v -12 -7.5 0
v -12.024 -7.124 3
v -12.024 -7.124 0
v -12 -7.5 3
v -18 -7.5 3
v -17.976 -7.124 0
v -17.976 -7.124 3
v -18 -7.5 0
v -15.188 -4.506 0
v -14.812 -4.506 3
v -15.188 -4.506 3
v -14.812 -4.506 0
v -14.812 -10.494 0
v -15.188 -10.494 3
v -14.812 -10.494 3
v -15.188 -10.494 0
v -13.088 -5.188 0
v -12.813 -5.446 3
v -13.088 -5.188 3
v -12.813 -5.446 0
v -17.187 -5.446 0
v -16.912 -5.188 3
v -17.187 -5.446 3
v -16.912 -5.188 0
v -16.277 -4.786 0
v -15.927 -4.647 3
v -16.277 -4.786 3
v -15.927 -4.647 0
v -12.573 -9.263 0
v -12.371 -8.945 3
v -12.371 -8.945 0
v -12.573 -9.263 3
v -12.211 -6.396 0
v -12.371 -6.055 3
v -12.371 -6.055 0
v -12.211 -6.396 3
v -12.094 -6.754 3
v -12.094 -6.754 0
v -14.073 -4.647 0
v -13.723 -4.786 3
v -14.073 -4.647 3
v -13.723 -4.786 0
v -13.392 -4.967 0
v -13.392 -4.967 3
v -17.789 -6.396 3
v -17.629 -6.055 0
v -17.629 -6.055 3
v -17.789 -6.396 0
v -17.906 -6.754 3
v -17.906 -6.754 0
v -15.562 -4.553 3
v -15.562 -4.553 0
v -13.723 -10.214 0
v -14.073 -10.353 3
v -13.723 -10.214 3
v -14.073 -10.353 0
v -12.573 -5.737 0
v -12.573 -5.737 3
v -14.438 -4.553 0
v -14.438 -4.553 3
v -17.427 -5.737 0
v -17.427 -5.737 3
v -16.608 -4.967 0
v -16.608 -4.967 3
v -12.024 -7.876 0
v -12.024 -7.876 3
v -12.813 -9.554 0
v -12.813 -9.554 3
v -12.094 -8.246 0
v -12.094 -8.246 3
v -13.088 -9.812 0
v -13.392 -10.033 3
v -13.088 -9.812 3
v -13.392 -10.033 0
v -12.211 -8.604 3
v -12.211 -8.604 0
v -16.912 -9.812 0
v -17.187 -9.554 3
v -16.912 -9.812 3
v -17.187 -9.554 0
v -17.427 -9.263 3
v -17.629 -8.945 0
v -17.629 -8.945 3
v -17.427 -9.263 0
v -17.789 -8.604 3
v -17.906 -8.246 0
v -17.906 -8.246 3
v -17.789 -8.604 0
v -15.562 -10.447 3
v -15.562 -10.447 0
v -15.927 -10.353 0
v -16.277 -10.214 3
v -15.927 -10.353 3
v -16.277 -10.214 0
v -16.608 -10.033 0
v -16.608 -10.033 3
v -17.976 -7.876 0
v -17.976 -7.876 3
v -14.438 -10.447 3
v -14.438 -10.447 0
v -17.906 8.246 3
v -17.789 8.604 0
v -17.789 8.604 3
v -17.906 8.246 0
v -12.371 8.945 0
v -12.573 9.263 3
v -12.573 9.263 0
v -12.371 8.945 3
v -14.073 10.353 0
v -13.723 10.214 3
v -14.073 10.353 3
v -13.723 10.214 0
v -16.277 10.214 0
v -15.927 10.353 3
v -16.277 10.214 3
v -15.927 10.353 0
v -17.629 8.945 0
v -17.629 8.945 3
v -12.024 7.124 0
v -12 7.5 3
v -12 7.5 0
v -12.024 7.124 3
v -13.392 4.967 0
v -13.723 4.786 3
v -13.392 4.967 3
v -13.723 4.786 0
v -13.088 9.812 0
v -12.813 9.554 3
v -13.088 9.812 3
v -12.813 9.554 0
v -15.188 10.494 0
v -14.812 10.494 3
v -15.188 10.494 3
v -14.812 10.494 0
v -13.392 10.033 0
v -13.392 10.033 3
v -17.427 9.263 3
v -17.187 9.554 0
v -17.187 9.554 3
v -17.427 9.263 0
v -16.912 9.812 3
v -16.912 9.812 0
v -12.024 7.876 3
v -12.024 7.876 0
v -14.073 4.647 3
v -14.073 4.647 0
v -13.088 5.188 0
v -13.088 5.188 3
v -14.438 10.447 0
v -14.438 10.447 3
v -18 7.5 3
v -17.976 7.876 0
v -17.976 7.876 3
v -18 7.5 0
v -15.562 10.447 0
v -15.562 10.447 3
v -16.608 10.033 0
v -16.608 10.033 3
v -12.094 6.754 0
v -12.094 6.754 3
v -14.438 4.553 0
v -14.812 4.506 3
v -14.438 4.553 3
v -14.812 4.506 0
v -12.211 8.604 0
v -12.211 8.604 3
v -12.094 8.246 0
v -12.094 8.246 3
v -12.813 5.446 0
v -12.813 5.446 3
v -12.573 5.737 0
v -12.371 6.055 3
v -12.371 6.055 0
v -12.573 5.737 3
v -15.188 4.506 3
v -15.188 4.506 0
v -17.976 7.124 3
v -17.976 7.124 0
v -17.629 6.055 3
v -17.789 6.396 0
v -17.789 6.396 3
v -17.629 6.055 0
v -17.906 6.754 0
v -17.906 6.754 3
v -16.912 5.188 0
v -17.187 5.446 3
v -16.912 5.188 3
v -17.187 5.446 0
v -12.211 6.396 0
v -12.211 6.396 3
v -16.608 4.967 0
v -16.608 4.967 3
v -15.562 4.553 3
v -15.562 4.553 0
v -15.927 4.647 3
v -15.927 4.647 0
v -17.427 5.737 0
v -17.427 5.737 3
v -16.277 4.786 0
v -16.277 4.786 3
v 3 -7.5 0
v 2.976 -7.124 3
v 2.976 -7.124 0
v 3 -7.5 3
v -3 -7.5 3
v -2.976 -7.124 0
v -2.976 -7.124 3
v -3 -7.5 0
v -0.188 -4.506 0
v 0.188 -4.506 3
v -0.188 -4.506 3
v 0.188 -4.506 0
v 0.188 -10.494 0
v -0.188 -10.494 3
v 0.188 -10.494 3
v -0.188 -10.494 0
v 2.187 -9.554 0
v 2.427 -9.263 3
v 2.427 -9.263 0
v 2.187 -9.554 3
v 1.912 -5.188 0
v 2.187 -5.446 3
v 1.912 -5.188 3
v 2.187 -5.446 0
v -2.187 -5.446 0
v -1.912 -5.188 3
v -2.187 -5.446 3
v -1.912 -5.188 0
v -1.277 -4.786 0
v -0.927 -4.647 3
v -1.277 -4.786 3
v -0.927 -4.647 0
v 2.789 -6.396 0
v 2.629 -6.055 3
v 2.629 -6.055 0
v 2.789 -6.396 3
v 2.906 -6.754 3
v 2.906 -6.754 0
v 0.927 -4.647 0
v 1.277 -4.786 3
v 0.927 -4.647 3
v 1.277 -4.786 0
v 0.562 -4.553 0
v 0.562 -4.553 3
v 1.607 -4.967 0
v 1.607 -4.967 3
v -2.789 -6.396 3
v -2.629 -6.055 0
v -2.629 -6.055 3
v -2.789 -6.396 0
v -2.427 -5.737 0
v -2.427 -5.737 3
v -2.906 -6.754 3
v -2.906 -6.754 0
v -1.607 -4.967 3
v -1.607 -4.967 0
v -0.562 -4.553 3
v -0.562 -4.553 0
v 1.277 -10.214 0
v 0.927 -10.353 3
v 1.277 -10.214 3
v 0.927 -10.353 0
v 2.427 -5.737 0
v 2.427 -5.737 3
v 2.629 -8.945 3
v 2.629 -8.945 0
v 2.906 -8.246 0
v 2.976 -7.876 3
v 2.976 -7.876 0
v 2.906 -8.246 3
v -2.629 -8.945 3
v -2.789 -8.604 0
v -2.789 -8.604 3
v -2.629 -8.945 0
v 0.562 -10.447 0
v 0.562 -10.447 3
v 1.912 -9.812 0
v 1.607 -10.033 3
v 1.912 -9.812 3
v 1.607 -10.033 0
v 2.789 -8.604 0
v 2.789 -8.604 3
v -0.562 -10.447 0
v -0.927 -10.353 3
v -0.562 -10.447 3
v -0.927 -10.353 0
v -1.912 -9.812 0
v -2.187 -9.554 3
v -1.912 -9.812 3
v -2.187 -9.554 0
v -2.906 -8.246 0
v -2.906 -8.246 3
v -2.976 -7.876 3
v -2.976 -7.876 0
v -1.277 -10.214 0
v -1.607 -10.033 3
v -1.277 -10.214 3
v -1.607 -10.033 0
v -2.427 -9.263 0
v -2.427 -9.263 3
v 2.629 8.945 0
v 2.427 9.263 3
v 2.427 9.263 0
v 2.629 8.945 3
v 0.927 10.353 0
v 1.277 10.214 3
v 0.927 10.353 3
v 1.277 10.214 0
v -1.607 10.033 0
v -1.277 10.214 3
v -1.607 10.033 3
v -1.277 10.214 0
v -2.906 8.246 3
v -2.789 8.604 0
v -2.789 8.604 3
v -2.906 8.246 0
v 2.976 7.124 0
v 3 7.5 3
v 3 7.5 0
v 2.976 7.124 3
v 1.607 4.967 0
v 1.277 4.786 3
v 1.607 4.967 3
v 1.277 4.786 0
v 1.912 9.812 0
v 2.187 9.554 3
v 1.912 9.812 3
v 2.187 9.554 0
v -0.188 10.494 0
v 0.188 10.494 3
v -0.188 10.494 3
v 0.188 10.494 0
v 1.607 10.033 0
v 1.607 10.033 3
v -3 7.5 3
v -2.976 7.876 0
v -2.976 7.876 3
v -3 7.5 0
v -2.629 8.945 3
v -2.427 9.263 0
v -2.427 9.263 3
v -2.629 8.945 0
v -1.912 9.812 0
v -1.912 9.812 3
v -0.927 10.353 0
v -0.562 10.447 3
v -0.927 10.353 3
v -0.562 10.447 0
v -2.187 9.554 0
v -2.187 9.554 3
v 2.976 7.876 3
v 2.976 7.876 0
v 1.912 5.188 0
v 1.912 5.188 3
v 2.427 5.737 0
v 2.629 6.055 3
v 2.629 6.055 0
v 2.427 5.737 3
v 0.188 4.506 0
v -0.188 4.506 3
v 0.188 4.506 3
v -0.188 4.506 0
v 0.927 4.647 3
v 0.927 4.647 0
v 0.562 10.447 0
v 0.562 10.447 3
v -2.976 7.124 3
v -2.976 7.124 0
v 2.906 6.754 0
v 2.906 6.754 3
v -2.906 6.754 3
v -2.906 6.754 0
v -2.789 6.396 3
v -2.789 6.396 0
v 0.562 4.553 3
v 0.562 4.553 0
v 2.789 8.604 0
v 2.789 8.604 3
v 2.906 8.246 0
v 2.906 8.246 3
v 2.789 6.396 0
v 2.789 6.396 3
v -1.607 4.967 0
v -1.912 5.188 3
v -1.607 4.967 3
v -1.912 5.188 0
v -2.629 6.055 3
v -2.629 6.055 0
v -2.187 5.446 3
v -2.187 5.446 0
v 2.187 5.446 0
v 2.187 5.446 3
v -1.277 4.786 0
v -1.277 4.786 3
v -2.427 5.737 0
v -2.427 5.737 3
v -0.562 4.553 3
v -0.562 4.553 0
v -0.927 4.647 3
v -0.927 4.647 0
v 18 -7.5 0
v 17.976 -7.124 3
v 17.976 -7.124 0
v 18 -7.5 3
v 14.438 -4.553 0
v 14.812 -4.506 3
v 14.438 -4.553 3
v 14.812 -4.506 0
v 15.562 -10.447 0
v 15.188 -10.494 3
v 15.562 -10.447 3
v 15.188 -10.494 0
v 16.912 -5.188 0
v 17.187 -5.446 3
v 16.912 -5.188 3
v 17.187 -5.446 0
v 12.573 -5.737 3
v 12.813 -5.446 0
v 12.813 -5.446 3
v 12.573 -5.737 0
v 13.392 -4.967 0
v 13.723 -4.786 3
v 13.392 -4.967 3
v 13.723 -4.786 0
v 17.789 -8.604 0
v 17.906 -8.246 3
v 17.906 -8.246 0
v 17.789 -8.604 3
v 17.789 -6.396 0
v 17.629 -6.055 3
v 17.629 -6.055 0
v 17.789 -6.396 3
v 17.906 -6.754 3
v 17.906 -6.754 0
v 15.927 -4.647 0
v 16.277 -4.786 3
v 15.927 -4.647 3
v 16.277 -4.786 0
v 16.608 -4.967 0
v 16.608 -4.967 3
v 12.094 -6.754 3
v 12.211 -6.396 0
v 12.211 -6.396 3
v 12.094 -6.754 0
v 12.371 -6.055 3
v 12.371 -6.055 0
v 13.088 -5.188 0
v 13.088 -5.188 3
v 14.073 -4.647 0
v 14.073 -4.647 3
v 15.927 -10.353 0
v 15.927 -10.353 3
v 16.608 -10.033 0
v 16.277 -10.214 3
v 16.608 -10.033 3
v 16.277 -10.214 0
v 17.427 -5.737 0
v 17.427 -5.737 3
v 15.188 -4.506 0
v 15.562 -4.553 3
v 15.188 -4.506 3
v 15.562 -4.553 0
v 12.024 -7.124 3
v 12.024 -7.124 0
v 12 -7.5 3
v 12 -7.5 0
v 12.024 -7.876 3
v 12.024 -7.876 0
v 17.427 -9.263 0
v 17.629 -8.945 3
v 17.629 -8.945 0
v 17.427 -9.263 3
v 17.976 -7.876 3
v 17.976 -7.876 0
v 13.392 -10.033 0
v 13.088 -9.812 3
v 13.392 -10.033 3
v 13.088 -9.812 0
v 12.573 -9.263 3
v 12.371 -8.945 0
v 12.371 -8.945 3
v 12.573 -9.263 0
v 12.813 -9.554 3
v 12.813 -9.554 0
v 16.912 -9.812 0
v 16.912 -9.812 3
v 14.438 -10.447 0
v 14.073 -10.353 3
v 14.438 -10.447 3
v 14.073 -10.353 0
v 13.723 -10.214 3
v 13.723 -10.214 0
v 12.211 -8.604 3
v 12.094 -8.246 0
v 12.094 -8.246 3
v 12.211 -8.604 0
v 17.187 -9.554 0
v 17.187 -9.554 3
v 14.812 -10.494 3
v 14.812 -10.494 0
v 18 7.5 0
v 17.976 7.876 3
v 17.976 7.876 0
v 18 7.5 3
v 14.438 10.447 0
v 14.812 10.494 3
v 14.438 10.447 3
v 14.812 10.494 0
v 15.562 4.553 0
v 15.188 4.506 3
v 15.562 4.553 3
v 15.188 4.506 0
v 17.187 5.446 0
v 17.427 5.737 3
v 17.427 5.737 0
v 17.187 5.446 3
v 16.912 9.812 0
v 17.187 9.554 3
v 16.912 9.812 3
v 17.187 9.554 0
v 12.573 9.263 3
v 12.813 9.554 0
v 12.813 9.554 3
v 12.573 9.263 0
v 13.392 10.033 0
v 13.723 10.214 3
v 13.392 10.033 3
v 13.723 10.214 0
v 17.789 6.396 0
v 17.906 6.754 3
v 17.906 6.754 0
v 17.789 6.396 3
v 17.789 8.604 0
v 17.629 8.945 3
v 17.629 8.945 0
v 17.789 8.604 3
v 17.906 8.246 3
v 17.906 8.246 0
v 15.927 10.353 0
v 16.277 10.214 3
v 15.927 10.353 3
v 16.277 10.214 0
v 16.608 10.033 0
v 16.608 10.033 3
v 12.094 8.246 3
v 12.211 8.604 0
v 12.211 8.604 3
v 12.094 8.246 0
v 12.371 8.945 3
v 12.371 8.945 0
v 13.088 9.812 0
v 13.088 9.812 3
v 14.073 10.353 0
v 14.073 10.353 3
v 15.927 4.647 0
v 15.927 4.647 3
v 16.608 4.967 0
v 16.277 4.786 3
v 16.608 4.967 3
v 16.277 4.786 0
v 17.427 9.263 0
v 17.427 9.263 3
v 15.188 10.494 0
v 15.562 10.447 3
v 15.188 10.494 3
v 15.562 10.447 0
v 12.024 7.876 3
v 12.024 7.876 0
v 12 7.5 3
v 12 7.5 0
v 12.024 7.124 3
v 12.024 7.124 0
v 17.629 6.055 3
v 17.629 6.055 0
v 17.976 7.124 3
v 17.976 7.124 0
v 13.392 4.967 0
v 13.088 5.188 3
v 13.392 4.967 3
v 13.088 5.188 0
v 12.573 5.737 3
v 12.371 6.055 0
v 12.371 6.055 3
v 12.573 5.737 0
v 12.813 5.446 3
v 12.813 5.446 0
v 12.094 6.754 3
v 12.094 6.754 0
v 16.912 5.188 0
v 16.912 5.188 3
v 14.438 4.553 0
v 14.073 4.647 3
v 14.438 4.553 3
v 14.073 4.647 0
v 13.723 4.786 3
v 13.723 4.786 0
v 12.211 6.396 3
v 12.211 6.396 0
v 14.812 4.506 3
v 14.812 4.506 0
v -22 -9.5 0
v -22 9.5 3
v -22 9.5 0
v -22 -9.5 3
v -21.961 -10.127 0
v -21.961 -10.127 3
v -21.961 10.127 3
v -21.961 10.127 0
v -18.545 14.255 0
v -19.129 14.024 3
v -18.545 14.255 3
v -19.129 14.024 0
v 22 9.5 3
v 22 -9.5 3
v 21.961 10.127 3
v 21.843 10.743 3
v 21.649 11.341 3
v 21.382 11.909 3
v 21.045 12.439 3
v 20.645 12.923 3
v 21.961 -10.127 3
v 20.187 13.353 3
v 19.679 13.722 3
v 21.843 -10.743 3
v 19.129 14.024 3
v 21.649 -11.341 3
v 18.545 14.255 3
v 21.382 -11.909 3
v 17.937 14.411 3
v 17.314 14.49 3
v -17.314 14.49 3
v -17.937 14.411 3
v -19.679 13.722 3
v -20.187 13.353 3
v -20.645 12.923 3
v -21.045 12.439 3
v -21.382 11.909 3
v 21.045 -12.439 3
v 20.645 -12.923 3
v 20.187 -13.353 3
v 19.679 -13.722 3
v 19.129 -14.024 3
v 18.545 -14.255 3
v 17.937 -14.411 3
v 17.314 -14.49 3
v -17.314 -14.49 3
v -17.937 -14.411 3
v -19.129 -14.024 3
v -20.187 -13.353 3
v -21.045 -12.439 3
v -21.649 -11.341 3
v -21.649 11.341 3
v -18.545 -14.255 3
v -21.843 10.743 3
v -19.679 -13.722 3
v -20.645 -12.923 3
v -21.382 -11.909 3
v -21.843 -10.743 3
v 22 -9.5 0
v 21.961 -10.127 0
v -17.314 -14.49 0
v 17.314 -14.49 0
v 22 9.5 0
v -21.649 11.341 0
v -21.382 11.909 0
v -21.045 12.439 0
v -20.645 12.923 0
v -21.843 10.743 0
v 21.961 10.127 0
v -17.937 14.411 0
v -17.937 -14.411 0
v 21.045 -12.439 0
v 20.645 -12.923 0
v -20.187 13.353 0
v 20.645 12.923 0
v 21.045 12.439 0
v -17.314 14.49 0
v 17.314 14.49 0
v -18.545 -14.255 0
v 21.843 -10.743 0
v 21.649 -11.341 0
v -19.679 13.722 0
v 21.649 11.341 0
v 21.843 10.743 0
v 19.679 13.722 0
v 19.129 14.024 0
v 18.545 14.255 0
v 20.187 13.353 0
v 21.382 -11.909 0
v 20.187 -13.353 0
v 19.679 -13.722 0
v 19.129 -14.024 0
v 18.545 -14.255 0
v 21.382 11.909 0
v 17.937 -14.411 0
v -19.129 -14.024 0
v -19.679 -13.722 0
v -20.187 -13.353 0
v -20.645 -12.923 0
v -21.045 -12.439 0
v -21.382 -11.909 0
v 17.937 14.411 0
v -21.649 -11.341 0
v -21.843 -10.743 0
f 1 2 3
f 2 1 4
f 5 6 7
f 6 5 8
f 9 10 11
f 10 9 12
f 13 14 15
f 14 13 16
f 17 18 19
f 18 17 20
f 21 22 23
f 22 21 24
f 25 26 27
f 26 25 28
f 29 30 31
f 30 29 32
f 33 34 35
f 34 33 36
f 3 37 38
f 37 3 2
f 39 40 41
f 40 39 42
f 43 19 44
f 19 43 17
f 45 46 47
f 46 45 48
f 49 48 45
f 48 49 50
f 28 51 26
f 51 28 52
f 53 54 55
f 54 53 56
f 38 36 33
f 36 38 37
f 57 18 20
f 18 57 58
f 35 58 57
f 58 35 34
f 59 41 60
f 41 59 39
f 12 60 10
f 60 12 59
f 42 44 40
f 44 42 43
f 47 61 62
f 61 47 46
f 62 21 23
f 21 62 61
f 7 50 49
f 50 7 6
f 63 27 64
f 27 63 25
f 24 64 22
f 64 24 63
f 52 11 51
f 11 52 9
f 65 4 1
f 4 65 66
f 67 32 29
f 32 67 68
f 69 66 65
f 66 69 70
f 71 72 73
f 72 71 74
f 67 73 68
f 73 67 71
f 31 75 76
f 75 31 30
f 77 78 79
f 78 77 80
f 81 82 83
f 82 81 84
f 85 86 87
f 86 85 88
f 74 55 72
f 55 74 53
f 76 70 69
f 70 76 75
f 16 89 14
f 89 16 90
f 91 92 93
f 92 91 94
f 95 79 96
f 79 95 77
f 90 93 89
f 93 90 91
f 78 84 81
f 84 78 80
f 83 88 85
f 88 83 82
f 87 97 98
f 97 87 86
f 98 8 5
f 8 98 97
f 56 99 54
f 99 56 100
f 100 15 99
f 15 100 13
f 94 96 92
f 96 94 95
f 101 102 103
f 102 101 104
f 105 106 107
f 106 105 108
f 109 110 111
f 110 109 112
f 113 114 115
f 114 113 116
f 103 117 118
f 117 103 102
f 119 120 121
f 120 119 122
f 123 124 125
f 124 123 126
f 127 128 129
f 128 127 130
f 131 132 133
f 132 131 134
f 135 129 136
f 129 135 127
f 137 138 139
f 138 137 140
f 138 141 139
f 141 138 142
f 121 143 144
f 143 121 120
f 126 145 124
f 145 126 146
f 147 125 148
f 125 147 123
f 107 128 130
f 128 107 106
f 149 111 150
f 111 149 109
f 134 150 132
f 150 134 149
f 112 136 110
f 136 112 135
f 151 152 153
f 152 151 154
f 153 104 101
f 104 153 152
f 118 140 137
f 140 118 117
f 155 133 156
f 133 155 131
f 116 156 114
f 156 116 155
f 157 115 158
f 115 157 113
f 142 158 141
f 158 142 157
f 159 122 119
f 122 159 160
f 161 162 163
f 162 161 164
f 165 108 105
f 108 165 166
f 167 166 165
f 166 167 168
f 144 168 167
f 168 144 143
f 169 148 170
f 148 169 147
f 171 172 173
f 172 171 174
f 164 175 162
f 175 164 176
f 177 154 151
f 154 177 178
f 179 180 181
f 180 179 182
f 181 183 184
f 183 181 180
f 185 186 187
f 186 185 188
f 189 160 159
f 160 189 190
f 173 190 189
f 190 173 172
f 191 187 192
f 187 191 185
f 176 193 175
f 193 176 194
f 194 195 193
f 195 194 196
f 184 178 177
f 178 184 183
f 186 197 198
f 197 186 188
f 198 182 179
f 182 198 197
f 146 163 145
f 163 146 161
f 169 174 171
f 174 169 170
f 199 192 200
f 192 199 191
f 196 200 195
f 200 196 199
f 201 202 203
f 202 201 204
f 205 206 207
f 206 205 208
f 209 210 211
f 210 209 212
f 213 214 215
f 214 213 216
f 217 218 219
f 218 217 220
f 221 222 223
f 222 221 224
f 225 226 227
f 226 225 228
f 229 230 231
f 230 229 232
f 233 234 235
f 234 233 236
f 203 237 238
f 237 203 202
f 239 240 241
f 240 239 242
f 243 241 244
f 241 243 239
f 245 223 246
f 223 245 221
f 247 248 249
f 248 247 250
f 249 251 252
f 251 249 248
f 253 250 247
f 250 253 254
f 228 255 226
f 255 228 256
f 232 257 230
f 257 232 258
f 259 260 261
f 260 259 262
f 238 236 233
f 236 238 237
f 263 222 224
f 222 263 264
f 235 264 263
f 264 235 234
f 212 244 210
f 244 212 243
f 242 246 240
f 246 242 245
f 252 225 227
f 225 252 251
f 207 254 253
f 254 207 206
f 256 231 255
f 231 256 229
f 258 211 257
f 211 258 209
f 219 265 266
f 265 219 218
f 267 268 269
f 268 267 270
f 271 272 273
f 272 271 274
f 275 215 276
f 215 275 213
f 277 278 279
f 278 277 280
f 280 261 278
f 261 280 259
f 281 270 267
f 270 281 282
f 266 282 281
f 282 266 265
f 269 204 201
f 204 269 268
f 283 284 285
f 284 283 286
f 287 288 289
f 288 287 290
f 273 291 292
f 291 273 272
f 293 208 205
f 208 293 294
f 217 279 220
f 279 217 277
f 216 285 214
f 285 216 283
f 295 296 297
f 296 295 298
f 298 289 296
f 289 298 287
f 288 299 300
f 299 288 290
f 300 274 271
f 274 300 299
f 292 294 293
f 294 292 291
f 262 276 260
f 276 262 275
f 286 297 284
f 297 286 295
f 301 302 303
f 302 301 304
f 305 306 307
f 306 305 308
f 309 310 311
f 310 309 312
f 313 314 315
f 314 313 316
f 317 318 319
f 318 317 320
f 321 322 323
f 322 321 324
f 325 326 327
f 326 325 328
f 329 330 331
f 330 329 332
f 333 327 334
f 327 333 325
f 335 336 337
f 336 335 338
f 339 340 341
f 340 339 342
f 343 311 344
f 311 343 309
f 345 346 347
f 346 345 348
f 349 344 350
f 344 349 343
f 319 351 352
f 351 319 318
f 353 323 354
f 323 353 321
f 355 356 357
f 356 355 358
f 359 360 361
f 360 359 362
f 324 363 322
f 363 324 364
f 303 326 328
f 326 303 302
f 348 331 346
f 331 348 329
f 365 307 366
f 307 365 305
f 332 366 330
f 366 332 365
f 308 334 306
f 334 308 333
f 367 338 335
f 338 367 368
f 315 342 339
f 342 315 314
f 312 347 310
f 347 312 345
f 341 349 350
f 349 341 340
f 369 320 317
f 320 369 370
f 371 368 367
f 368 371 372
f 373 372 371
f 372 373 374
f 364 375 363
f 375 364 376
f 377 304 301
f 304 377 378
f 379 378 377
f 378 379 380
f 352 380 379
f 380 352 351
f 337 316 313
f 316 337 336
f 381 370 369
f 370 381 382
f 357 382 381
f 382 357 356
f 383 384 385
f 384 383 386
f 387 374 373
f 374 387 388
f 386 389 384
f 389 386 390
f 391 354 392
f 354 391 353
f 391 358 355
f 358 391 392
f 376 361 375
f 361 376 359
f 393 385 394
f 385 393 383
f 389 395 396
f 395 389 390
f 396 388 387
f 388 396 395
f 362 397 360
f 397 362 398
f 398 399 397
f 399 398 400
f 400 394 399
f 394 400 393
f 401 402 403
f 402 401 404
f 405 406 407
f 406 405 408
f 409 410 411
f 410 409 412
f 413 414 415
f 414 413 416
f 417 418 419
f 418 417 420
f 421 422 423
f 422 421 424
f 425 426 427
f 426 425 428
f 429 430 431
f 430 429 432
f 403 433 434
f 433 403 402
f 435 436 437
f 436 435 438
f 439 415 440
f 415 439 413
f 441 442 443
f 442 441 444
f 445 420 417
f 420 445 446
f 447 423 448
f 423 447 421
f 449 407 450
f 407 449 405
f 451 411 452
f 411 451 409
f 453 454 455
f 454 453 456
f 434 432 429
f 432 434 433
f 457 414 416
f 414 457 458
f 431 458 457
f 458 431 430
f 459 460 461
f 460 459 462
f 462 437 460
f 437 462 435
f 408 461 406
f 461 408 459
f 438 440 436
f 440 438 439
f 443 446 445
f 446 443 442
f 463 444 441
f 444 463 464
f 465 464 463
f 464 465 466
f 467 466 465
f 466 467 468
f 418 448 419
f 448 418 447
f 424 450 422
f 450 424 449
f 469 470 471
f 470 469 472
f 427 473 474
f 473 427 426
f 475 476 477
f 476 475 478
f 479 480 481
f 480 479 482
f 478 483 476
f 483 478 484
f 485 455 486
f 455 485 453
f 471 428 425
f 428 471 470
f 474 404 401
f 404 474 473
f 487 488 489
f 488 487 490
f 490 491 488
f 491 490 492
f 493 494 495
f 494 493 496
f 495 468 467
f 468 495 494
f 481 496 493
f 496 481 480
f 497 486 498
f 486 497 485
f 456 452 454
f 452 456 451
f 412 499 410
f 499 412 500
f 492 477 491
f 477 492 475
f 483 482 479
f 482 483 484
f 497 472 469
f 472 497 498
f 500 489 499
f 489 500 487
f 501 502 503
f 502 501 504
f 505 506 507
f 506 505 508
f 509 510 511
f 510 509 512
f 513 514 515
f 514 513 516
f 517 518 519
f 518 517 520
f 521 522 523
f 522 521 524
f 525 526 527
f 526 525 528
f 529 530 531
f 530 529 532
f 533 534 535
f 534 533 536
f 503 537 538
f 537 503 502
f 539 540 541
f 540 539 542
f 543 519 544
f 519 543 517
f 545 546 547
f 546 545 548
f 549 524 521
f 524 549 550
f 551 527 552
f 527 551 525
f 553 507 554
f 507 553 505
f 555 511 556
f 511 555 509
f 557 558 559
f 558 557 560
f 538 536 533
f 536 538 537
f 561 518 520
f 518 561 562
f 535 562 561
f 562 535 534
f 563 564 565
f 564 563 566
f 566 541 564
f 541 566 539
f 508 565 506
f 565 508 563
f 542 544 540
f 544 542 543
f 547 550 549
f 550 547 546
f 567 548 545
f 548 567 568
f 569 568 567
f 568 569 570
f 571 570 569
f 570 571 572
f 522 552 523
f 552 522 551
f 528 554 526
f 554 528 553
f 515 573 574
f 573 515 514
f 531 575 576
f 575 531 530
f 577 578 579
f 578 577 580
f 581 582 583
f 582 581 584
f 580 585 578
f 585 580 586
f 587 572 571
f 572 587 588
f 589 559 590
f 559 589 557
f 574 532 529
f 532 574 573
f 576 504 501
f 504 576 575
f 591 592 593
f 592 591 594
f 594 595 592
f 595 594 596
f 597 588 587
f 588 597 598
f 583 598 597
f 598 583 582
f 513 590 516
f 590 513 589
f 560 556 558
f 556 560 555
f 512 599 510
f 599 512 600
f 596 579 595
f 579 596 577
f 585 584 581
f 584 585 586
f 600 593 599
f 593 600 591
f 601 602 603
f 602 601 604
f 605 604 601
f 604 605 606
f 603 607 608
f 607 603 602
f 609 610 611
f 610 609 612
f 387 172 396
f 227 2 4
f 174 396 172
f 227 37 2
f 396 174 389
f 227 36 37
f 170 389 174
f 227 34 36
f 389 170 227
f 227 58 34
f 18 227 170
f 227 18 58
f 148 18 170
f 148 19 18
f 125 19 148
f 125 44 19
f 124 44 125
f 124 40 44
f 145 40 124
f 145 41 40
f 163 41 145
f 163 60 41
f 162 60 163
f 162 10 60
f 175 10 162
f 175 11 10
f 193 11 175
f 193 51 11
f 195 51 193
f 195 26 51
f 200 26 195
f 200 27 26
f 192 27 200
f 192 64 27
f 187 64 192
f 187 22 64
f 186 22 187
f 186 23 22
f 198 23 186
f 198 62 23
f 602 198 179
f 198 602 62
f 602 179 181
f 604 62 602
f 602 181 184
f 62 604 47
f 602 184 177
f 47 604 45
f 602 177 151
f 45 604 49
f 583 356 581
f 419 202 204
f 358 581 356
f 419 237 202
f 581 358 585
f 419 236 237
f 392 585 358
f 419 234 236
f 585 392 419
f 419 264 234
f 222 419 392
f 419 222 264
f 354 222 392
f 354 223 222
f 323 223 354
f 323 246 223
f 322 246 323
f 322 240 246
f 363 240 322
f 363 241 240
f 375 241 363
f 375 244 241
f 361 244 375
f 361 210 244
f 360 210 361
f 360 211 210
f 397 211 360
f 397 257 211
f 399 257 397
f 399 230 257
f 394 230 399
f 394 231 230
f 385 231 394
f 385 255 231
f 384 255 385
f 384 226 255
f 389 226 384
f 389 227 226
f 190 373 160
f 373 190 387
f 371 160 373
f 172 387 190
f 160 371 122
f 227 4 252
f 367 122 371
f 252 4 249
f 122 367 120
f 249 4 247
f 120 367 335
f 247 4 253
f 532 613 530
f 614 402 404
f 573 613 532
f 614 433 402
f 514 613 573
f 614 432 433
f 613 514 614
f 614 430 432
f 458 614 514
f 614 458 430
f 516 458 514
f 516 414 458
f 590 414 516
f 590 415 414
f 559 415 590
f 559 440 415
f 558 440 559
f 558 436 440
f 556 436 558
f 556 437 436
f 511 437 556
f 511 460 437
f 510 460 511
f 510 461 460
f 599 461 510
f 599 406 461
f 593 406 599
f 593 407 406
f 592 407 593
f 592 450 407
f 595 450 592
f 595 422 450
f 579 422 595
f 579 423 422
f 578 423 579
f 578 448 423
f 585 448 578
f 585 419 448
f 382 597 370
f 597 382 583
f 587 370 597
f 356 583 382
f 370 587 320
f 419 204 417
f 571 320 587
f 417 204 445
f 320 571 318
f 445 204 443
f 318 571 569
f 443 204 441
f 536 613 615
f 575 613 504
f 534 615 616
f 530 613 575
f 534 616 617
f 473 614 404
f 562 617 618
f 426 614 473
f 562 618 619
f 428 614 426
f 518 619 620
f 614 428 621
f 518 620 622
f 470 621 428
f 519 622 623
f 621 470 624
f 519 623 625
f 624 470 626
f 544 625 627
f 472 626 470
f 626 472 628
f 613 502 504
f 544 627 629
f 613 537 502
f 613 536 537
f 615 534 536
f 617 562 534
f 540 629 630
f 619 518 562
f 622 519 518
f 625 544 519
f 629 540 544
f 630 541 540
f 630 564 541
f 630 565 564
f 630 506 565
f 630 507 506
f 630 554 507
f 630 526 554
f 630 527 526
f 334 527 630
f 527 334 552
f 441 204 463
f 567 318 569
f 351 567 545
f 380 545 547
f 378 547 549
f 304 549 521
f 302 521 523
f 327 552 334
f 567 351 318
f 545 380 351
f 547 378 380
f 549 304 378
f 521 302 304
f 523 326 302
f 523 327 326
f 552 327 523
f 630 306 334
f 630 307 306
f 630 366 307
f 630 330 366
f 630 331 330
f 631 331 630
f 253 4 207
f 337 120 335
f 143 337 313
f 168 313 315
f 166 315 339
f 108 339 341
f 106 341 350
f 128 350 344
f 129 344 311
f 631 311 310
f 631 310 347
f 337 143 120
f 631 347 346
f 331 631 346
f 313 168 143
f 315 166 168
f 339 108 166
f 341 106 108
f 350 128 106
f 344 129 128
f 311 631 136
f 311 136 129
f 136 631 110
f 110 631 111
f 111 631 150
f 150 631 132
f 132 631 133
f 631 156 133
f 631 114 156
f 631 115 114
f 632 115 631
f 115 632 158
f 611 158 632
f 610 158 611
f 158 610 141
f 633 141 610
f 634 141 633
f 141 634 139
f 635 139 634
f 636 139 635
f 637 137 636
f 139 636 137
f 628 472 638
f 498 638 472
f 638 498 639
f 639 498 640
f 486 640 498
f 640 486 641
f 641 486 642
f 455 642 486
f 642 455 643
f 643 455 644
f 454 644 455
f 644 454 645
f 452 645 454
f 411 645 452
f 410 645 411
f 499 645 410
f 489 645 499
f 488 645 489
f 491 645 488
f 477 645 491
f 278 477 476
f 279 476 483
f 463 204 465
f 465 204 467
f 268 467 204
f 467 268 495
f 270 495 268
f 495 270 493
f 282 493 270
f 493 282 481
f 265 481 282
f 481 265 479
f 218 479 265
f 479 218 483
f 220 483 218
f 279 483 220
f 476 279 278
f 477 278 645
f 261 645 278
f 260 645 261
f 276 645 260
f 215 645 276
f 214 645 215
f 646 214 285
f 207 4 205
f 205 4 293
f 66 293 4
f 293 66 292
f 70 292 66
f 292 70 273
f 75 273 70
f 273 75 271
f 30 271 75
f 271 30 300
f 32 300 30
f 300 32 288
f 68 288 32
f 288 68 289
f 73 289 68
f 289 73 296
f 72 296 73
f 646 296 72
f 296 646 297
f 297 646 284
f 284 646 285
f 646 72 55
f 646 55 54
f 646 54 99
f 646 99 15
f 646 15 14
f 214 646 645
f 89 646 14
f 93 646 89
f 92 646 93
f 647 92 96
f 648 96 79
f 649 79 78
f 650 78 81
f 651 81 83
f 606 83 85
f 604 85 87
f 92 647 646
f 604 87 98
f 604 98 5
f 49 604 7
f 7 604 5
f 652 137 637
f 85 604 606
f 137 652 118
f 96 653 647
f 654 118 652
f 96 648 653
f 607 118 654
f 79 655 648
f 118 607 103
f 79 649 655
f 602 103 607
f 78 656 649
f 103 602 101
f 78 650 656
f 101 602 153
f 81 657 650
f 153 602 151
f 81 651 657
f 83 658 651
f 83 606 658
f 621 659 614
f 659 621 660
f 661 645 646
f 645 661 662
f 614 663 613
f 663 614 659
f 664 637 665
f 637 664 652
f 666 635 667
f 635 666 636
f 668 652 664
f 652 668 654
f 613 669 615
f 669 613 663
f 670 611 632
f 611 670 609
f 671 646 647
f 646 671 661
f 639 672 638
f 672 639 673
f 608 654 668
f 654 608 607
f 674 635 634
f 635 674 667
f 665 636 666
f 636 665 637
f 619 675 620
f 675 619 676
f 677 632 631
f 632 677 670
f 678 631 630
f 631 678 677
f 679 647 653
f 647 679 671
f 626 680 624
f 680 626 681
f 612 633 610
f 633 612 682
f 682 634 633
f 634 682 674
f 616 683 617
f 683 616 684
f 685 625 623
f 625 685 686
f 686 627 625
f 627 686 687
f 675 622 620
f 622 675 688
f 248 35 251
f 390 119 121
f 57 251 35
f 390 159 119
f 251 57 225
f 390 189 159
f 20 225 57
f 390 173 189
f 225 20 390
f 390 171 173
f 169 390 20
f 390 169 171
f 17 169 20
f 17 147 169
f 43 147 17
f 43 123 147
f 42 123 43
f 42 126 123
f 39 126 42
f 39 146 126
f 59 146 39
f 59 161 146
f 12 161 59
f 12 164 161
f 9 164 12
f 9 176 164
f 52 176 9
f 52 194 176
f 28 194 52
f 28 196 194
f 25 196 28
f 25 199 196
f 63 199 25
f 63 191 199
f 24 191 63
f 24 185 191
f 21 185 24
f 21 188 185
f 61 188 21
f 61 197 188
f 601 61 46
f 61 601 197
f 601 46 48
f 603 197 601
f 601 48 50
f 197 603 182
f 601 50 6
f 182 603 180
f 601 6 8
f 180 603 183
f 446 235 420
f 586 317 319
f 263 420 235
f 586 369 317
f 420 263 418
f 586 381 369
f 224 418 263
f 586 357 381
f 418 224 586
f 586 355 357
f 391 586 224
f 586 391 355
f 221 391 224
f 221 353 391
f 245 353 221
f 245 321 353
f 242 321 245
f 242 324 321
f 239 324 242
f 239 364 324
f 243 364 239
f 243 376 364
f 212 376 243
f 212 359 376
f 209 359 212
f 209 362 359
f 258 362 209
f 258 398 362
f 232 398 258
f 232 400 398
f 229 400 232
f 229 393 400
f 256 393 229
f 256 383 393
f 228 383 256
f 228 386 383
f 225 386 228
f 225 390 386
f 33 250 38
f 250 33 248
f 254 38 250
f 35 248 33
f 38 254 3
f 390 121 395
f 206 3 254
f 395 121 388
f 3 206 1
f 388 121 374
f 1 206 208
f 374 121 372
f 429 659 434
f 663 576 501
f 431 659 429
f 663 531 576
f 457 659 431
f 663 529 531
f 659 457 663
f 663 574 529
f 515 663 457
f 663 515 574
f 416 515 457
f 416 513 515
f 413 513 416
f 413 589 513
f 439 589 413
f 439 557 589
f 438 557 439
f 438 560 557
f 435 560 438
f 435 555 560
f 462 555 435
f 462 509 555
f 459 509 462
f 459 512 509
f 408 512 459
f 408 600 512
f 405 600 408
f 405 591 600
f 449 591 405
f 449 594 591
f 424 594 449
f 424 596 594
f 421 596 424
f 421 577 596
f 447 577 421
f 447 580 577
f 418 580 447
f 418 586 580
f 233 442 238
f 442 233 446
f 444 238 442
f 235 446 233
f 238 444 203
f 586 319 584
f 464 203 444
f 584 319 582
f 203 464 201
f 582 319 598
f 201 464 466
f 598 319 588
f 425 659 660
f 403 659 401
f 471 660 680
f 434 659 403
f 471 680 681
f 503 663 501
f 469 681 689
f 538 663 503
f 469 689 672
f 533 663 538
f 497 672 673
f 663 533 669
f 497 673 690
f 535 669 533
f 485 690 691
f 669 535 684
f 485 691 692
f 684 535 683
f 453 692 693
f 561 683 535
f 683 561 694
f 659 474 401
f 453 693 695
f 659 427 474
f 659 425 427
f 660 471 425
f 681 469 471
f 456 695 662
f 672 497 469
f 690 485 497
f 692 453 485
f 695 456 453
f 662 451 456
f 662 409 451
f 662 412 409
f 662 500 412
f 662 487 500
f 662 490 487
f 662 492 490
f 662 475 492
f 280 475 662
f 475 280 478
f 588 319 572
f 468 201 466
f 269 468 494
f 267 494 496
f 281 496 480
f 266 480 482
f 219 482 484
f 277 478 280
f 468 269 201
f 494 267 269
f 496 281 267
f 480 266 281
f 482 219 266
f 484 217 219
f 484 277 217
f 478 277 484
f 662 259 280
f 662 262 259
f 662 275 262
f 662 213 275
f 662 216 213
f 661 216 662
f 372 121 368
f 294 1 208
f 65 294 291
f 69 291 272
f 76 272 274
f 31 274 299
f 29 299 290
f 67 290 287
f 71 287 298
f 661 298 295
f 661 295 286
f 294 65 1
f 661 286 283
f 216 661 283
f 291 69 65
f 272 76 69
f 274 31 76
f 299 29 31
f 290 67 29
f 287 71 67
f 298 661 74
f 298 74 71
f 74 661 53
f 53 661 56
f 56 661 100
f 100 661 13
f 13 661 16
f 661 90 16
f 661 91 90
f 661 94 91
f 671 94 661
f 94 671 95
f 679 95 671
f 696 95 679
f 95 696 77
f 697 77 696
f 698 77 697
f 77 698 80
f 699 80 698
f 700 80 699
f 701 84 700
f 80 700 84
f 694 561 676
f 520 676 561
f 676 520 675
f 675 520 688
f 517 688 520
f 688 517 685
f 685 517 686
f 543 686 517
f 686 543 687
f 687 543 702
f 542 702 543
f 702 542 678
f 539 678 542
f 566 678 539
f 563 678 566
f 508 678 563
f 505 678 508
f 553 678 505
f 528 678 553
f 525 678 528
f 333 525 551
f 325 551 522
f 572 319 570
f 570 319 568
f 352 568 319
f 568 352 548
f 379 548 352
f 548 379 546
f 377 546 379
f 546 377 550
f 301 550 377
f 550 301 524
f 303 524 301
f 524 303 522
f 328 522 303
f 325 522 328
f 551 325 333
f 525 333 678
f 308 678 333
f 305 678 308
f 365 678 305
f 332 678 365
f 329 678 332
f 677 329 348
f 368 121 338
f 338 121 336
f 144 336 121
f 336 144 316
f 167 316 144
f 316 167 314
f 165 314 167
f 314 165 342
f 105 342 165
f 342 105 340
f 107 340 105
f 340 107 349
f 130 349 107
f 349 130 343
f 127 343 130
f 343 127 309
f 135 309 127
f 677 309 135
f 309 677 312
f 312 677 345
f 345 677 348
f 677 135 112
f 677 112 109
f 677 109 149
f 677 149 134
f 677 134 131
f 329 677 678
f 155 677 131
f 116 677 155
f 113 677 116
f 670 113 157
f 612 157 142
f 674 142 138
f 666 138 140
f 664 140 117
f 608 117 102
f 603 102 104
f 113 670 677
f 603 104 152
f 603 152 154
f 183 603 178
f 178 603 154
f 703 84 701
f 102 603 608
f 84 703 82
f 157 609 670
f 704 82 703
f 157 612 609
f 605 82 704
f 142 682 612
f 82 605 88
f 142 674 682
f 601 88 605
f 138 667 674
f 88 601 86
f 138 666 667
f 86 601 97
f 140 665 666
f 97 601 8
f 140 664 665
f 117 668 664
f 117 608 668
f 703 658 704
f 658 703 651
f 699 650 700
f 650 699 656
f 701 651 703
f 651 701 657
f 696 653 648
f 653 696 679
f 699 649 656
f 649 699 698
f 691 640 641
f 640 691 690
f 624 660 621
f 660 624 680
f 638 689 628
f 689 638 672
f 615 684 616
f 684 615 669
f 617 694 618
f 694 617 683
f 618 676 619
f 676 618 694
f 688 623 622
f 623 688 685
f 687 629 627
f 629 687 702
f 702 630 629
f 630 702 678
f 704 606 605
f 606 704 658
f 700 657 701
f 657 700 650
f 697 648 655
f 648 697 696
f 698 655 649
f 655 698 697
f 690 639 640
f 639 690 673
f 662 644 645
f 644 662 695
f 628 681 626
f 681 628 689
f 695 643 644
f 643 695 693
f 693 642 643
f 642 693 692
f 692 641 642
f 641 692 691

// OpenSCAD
// Generated by SolidPython 1.1.3 on 2023-03-13 21:42:52
$fn = 50;


difference() {
	union() {
		translate(v = [0, 0, 0]) {
			rotate(a = [0, 0, 0]) {
				hull() {
					translate(v = [-17.0000000000, 9.5000000000, 0]) {
						rotate(a = [0, 0, 0]) {
							translate(v = [0, 0, 0]) {
								rotate(a = [0, 0, 0]) {
									cylinder(h = 3, r = 5);
								}
							}
						}
					}
					translate(v = [17.0000000000, 9.5000000000, 0]) {
						rotate(a = [0, 0, 0]) {
							translate(v = [0, 0, 0]) {
								rotate(a = [0, 0, 0]) {
									cylinder(h = 3, r = 5);
								}
							}
						}
					}
					translate(v = [-17.0000000000, -9.5000000000, 0]) {
						rotate(a = [0, 0, 0]) {
							translate(v = [0, 0, 0]) {
								rotate(a = [0, 0, 0]) {
									cylinder(h = 3, r = 5);
								}
							}
						}
					}
					translate(v = [17.0000000000, -9.5000000000, 0]) {
						rotate(a = [0, 0, 0]) {
							translate(v = [0, 0, 0]) {
								rotate(a = [0, 0, 0]) {
									cylinder(h = 3, r = 5);
								}
							}
						}
					}
				}
			}
		}
	}
	union() {
		translate(v = [-15.0000000000, -7.5000000000, 0]) {
			rotate(a = [0, 0, 0]) {
				translate(v = [0, 0, -50]) {
					rotate(a = [0, 0, 0]) {
						cylinder(h = 100, r = 3.0000000000);
					}
				}
			}
		}
		translate(v = [-15.0000000000, 7.5000000000, 0]) {
			rotate(a = [0, 0, 0]) {
				translate(v = [0, 0, -50]) {
					rotate(a = [0, 0, 0]) {
						cylinder(h = 100, r = 3.0000000000);
					}
				}
			}
		}
		translate(v = [0.0000000000, -7.5000000000, 0]) {
			rotate(a = [0, 0, 0]) {
				translate(v = [0, 0, -50]) {
					rotate(a = [0, 0, 0]) {
						cylinder(h = 100, r = 3.0000000000);
					}
				}
			}
		}
		translate(v = [0.0000000000, 7.5000000000, 0]) {
			rotate(a = [0, 0, 0]) {
				translate(v = [0, 0, -50]) {
					rotate(a = [0, 0, 0]) {
						cylinder(h = 100, r = 3.0000000000);
					}
				}
			}
		}
		translate(v = [15.0000000000, -7.5000000000, 0]) {
			rotate(a = [0, 0, 0]) {
				translate(v = [0, 0, -50]) {
					rotate(a = [0, 0, 0]) {
						cylinder(h = 100, r = 3.0000000000);
					}
				}
			}
		}
		translate(v = [15.0000000000, 7.5000000000, 0]) {
			rotate(a = [0, 0, 0]) {
				translate(v = [0, 0, -50]) {
					rotate(a = [0, 0, 0]) {
						cylinder(h = 100, r = 3.0000000000);
					}
				}
			}
		}
	}
}
/***********************************************
*********      SolidPython code:      **********
************************************************
 
from solid import *
import os
import subprocess

import oomB

import opsc_library_gen

mode = "laser"
#mode = "3d_print"

defined_objects = {}

radius_dict = {}
countersunk_dict = {}


def set_mode(m):
    global mode
    mode = m
    radius_dict['M6'] = 6.5/2
    radius_dict['M3'] = 3.3/2
    if mode == "laser":
        radius_dict['M6'] = 6/2
        radius_dict['M3'] = 3/2

    countersunk_dict['M3'] = {}
    countersunk_dict['M3']['little_rad'] = radius_dict['M3']
    countersunk_dict['M3']['big_rad'] = (5.5+0.6)/2
    if mode == "laser":
        countersunk_dict['M3']['big_rad'] = (4.75+0.6)/2
        countersunk_dict['M3']['little_rad'] = (4.75+0.6)/2

    countersunk_dict['M3']['height'] = 1.7


def opsc_make_object(filename, objects, save_type="none",resolution=50, layers = 1, tilediff = 200, mode="laser", overwrite=True):
    if overwrite or not os.path.exists(filename):
        set_mode(mode)
        save_type = save_type.lower()
        os.makedirs(os.path.dirname(filename), exist_ok=True)
        final_object = opsc_get_object(objects, mode = mode)
        # Save the final object to the specified filename    
        scad_render_to_file(final_object, filename, file_header='$fn = %s;' % resolution, include_orig_code=True)
        if save_type == "all":
            saveToAll(filename)
        elif save_type == "dxf":
            saveToDxf(filename)
        if mode == "laser":
            filename_laser = filename.replace(".scad","-flat.scad")
            scad_render_to_file(getLaser(final_object, layers=layers, tilediff=tilediff), filename_laser, file_header='$fn = %s;' % resolution, include_orig_code=True)
            if save_type == "all":
                saveToAll(filename_laser)
            elif save_type == "dxf":
                saveToDxf(filename_laser)


def opsc_get_object(objects, mode = "laser"):
    # Create the solidpython objects only include the positive objects and if they don't have inclusion or their inclusion is either all or mode
    # Initialize an empty list to store the results
    positive_objects = []

    # Iterate over the "objects" list
    for obj in objects:
        # Check if the current object has a "type" key with a value of "positive"
        if obj['type'] == 'positive':
            # Check if the current object has an "inclusion" key and its value matches "mode",
            # or if the current object does not have an "inclusion" key at all
            if not 'inclusion' in obj or obj['inclusion'] == "all" or obj['inclusion'] == mode:
                # Call the "get_opsc_item" function with the current object as an argument
                opsc_item = get_opsc_item(obj)
                # Add the result to the "positive_objects" list
                positive_objects.append(opsc_item)
# Initialize an empty list to store the results
    negative_objects = []

    # Iterate over the "objects" list
    for obj in objects:
        # Check if the current object has a "type" key with a value of "negative"
        if obj['type'] == 'negative':
            # Check if the current object has an "inclusion" key and its value matches "mode",
            # or if the current object does not have an "inclusion" key at all
            if not 'inclusion' in obj or obj['inclusion'] == "all" or obj['inclusion'] == mode:
                # Call the "get_opsc_item" function with the current object as an argument
                opsc_item = get_opsc_item(obj)
                # Add the result to the "negative_objects" list
                negative_objects.append(opsc_item)
    
    #positive_objects = [get_opsc_item(obj) for obj in objects if obj['type'] == 'positive']
    #negative_objects = [get_opsc_item(obj) for obj in objects if obj['type'] == 'negative']
    # Union the positive objects
    positive_object = union()(*positive_objects)
    # Union the negative objects
    negative_object = union()(*negative_objects)
    # Create the final object by subtracting the negative objects from the positive objects
    return difference()(positive_object, negative_object)

def get_opsc_item(params):
    # A dictionary to map radius string values to numerical values
    #radius_dict = {'small': 5, 'medium': 10, 'large': 15}
    # An array of function names for basic shapes
    basic_shapes = ['cube', 'sphere', 'cylinder']
    
    # An array of function names for other shapes
    other_shapes = ['hole', 'slot', 'rounded_rectangle', 'countersunk', 'polyg']
    


    # Convert radius to r if present, and remove radius from the params dictionary
    if 'radius' in params:
        if isinstance(params['radius'], str):
            # Use the radius_dict to map the radius string value to a numerical value
            params['r'] = radius_dict[params['radius']]
        else:
            params['r'] = params['radius']
        del params['radius']
    

    # Check if the object type is a basic shape
    if params['shape'] in basic_shapes:
        # Remove shape and unexpected dictionary values
        allowed_keys = {'size', 'r', 'r1', 'r2', 'd', 'h', 'rw', 'rh', 'dw', 'dh'}
        shape_params = {k: v for k, v in params.items() if k in allowed_keys}

        #params['m'] = "#"
        ###split for adding modifier
        try:
            m = params['m']
            func = globals()[params['shape']]
            return_value = get_opsc_transform(params,func(**shape_params))
            return_value = (return_value).set_modifier(m)
            return return_value
        except KeyError as e:
            return get_opsc_transform(params,globals()[params['shape']](**shape_params))
        
    elif params['shape'] == 'polygon':
        # Remove shape and unexpected dictionary values
        h  = params['height']
        allowed_keys = {'points'}
        shape_params = {k: v for k, v in params.items() if k in allowed_keys}

        # Call the corresponding function for the shape parameter, using ** notation to pass the shape_params dictionary as keyword arguments
        params["rot"] = [0,0,0]        
        try:
            m = params['m']
            func = globals()[params['shape']]
            return_value = get_opsc_transform(params,linear_extrude(h)(globals()[params['shape']](**shape_params)))
            return_value = (return_value).set_modifier(m)
            return return_value
        except KeyError as e:
            return_value = get_opsc_transform(params,linear_extrude(h)(globals()[params['shape']](**shape_params)))
            return_value = (return_value)
            return return_value


    # If the object type is not a basic shape, check if it's a defined object or one of the other shapes
    elif params['shape'] in other_shapes:
        # Call the corresponding function for the shape parameter, passing the params dictionary as an argument
        p2 = copy.deepcopy(params)
        p2["pos"] = [0,0,0]
        return get_opsc_transform(params,globals()[params['shape']](p2))
    
    # If the object is not a basic shape or a defined object, try to import it from a .scad file
    else:
        obj = defined_objects[params['shape']]
        return get_opsc_transform(params,obj)

def get_opsc_transform(params, solid_obj):
    # Rotate the object based on the 'rot' field in the params dictionary, or the 'rotX', 'rotY', and 'rotZ' fields if 'rot' is not present
    rot = params.get('rot', [])
    if rot:
        rotX, rotY, rotZ = rot
    else:
        rotX = params.get('rotX', 0)
        rotY = params.get('rotY', 0)
        rotZ = params.get('rotZ', 0)
    solid_obj = rotate([rotX, rotY, rotZ])(solid_obj)

    # Translate the object based on the 'pos' field in the params dictionary, or the 'x', 'y', and 'z' fields if 'pos' is not present
    pos = params.get('pos', [])
    if pos:
        x, y, z = pos
    else:
        x = params.get('x', 0)
        y = params.get('y', 0)
        z = params.get('z', 0)
    solid_obj = translate([x, y, z])(solid_obj)
    return solid_obj


import random

def opsc_easy_array(type, shape, repeats, pos_start, shift_arr, **kwargs):
    for i in range(0,3):
        repeats.append(1)
        pos_start.append(0)
        shift_arr.append(0)
    return_objects = []

    for x in range(0,repeats[0]):
        for y in range(0,repeats[1]):
            for z in range(0,repeats[2]):
                return_objects.append(opsc_easy(type, shape, pos=[pos_start[0]+x*shift_arr[0],pos_start[1]+y*shift_arr[1],pos_start[2]+z*shift_arr[2]], **kwargs))
    return return_objects                



def opsc_easy(type, shape, **kwargs):
    obj = {
        'type': type,
        'shape': shape
    }
    for param in ['size', 'r', 'r1', 'r2', 'd', 'h', 'rw', 'rh', 'dw', 'dh', 'pos', 'x', 'y', 'z', 'rot', 'rotX', 'rotY', 'rotZ', "w", "inclusion", 'sides', 'height', "m"]:
        if param in kwargs:
            obj[param] = kwargs[param]
    return obj

def hole(params):
    p2 = copy.deepcopy(params)  
    # Check if the radius is a string and replace it with the corresponding value from the dictionary
    if isinstance(p2['r'], str):
        p2['r'] = radius_dict[p2['r']]
    
    # Set the height to 100 if not specified
    if 'h' not in p2:
        p2['h'] = 100
        p2["pos"] = [0,0,-50]
    p2["center"] = True
    # Create the cylinder object
    p2["shape"] = "cylinder"
    p2["type"] = "positive"

    return get_opsc_item(p2)

import copy

def countersunk(params):
    p2 = copy.deepcopy(params)
    counter_rad = p2['r']
    p2['r'] = radius_dict[p2['r']]
    hp = copy.deepcopy(p2)
    hp["type"] = "positive"
    hp["shape"] = "hole"
    del hp["rot"]
    hol = get_opsc_item(hp)
    
    cp = copy.deepcopy(p2)
    cp["h"] = countersunk_dict[counter_rad]["height"]
    cp["r2"] = countersunk_dict[counter_rad]["little_rad"]
    cp["r1"] = countersunk_dict[counter_rad]["big_rad"]
    del cp["r"]
    del cp["rot"]
    cp["type"] = "positive"
    cp["shape"] = "cylinder"
    cp["pos"] = [0,0,0]

    top = get_opsc_item(cp)
    return union()(hol,top)



def slot(params):  
    p2 = copy.deepcopy(params) 
    if isinstance(p2['r'], str):
        p2['r'] = radius_dict[p2['r']]
    p2["type"] = "positive"
    p2["shape"] = "hole"
    del p2["rot"]
    p2["pos"] = [0,0,0]
    left = copy.deepcopy(p2)
    right = copy.deepcopy(p2)
    left["pos"][0] = p2["w"] / 2 - p2["r"] 
    
    right["pos"][0] = -p2["w"] / 2 + p2["r"] 
    pass
    leftObj = get_opsc_item(left)
    rightObj = get_opsc_item(right)
    return hull()(leftObj, rightObj)

def rounded_rectangle(params):   
    p2 = copy.deepcopy(params) 
    p2["h"] = p2["size"][2]
    p2["pos"] = p2.get("pos", [0, 0, 0]) 
    p2["type"] = "positive"
    p2["shape"] = "hole"
    p2["pos"] = [0,0,0]
    
    if 'rot' in p2:
        del p2["rot"]   
    if 'r' not in p2:
        p2["r"] = 5 
    tl = copy.deepcopy(p2)
    tr = copy.deepcopy(p2)
    bl = copy.deepcopy(p2)
    br = copy.deepcopy(p2)
    tl["pos"][0] = -(p2["size"][0] - p2["r"]*2)/2
    tl["pos"][1] = (p2["size"][1] - p2["r"]*2)/2
    tr["pos"][0] = (p2["size"][0] - p2["r"]*2)/2
    tr["pos"][1] = (p2["size"][1] - p2["r"]*2)/2
    bl["pos"][0] = -(p2["size"][0] - p2["r"]*2)/2
    bl["pos"][1] = -(p2["size"][1] - p2["r"]*2)/2
    br["pos"][0] = (p2["size"][0] - p2["r"]*2)/2
    br["pos"][1] = -(p2["size"][1] - p2["r"]*2)/2
    del tl["size"]
    del tr["size"]
    del bl["size"]
    del br["size"]
    tlo = get_opsc_item(tl)
    tro = get_opsc_item(tr)
    blo = get_opsc_item(bl)
    bro = get_opsc_item(br)    
    return hull()(tlo, tro, blo, bro)



def polyg(params):
    p2 = copy.deepcopy(params) 
    p2["type"] = "positive"
    p2["shape"] = "polygon"
    p2["pos"] = [0,0,0]
    sides = p2["sides"]
    radius = p2["r"]    
    angles = [i * 360 / sides for i in range(sides)]
    points = regular_polygon(sides, radius)
    
    p2["points"] = points
    return get_opsc_item(p2)

import math

def regular_polygon(num_sides, radius):
    # Calculate the angle between each side
    angle = 2 * math.pi / num_sides

    # Calculate the points of the polygon
    points = []
    for i in range(num_sides):
        x = radius * math.cos(i * angle)
        y = radius * math.sin(i * angle)
        points.append((x, y))
    return points

def import_scad_object(filename):
    # Import the .scad file and convert it to a solidpython object
    #filename = "parts"
    obj = import_scad(filename)
    return obj.main()



import os
import solid as solidpython

# A dictionary to store the defined objects


def load_scad_objects():
    opsc_library_gen.gen_library(defined_objects)

import random

def test(num_objects):
    objects = []
    for i in range(num_objects):
        # Choose a random shape
        #shape = random.choice(['cube', 'sphere', 'cylinder', 'hole', 'slot', "rounded_rectangle"])
        shape = random.choice(["rounded_rectangle"])

        # Choose a random type
        type = random.choice(['positive', 'negative'])
        
        # Create an empty object dictionary
        obj = {'shape': shape, 'type': type}
        
        # Set shape-specific parameters
        if obj['shape'] in ['cube']:
            obj['size'] =  [random.uniform(5, 15), random.uniform(5, 15), random.uniform(5, 15)]
        if obj['shape'] in ['rounded_rectangle']:
            obj['size'] =  [random.uniform(5, 15), random.uniform(5, 15), random.uniform(5, 15)]
            obj['r'] = random.uniform(0.5, 5)
        elif obj['shape'] == 'sphere':
            obj['r'] = random.uniform(5, 15)
        elif obj['shape'] in ['cylinder', 'hole']:
            obj['r'] = random.uniform(0.5, 5)
            obj['h'] = random.uniform(5, 15)
        elif obj['shape'] == 'slot':
            obj['r'] = random.uniform(0.5, 5)
            obj['h'] = random.uniform(5, 15)
            obj['w'] = random.uniform(5, 15)
        
        # Set a random position and rotation
        obj['pos'] = [random.uniform(-20, 20), random.uniform(-20, 20), random.uniform(-20, 20)]
        obj['rot'] = [random.uniform(-180, 180), random.uniform(-180, 180), random.uniform(-180, 180)]
        
        # Add the object to the list
        objects.append(obj)
    return objects

####### old file saving
def saveToAll(fileIn):
    saveToStl(fileIn)
    saveToDxf(fileIn)
    saveToPng(fileIn)
    saveToSvg(fileIn)

def saveToDxf(fileIn, fileOut="", copy_to_laser=True):
    if fileOut == "":
        fileOut = fileIn.replace(".scad",".dxf")
    saveToFile(fileIn, fileOut)


    
def saveToPng(fileIn, fileOut="",extra="--render"):
    if fileOut == "":
        fileOut = fileIn.replace(".scad",".png")
    saveToFile(fileIn, fileOut)

def saveToStl(fileIn, fileOut=""):
    if fileOut == "":
        fileOut = fileIn.replace(".scad",".stl")
    saveToFile(fileIn, fileOut)
    
def saveToSvg(fileIn, fileOut=""):
    if fileOut == "":
        fileOut = fileIn.replace(".scad",".svg")
    saveToFile(fileIn, fileOut)

def saveToFile(fileIn, fileOut,extra=""):
    #extra = extra + " --colorscheme Tomorrow"

    launchStr = 'openscad -o "' + fileOut + '"' + extra + ' "' + fileIn + '"'
    if ".png" in fileOut:
        launchStr = launchStr + " --render"
    print("            saveToFile launch string: " + launchStr)
    subprocess.run(launchStr)
    x=0

def getLaser(final_object,start=1.5,layers=1,thickness=3,tilediff=200):
        rv= []

        for x in range(layers):
            rv.append(translate([0,x*tilediff,0])(
                    projection()(
                        intersection()(translate([-500,-500,start+x*thickness])(cube(size=[1000,1000,0.1])),
                            final_object
                        )
                    )
            )
            )
            
        return union()(rv)

set_mode("laser")
load_scad_objects() 
 
************************************************/
